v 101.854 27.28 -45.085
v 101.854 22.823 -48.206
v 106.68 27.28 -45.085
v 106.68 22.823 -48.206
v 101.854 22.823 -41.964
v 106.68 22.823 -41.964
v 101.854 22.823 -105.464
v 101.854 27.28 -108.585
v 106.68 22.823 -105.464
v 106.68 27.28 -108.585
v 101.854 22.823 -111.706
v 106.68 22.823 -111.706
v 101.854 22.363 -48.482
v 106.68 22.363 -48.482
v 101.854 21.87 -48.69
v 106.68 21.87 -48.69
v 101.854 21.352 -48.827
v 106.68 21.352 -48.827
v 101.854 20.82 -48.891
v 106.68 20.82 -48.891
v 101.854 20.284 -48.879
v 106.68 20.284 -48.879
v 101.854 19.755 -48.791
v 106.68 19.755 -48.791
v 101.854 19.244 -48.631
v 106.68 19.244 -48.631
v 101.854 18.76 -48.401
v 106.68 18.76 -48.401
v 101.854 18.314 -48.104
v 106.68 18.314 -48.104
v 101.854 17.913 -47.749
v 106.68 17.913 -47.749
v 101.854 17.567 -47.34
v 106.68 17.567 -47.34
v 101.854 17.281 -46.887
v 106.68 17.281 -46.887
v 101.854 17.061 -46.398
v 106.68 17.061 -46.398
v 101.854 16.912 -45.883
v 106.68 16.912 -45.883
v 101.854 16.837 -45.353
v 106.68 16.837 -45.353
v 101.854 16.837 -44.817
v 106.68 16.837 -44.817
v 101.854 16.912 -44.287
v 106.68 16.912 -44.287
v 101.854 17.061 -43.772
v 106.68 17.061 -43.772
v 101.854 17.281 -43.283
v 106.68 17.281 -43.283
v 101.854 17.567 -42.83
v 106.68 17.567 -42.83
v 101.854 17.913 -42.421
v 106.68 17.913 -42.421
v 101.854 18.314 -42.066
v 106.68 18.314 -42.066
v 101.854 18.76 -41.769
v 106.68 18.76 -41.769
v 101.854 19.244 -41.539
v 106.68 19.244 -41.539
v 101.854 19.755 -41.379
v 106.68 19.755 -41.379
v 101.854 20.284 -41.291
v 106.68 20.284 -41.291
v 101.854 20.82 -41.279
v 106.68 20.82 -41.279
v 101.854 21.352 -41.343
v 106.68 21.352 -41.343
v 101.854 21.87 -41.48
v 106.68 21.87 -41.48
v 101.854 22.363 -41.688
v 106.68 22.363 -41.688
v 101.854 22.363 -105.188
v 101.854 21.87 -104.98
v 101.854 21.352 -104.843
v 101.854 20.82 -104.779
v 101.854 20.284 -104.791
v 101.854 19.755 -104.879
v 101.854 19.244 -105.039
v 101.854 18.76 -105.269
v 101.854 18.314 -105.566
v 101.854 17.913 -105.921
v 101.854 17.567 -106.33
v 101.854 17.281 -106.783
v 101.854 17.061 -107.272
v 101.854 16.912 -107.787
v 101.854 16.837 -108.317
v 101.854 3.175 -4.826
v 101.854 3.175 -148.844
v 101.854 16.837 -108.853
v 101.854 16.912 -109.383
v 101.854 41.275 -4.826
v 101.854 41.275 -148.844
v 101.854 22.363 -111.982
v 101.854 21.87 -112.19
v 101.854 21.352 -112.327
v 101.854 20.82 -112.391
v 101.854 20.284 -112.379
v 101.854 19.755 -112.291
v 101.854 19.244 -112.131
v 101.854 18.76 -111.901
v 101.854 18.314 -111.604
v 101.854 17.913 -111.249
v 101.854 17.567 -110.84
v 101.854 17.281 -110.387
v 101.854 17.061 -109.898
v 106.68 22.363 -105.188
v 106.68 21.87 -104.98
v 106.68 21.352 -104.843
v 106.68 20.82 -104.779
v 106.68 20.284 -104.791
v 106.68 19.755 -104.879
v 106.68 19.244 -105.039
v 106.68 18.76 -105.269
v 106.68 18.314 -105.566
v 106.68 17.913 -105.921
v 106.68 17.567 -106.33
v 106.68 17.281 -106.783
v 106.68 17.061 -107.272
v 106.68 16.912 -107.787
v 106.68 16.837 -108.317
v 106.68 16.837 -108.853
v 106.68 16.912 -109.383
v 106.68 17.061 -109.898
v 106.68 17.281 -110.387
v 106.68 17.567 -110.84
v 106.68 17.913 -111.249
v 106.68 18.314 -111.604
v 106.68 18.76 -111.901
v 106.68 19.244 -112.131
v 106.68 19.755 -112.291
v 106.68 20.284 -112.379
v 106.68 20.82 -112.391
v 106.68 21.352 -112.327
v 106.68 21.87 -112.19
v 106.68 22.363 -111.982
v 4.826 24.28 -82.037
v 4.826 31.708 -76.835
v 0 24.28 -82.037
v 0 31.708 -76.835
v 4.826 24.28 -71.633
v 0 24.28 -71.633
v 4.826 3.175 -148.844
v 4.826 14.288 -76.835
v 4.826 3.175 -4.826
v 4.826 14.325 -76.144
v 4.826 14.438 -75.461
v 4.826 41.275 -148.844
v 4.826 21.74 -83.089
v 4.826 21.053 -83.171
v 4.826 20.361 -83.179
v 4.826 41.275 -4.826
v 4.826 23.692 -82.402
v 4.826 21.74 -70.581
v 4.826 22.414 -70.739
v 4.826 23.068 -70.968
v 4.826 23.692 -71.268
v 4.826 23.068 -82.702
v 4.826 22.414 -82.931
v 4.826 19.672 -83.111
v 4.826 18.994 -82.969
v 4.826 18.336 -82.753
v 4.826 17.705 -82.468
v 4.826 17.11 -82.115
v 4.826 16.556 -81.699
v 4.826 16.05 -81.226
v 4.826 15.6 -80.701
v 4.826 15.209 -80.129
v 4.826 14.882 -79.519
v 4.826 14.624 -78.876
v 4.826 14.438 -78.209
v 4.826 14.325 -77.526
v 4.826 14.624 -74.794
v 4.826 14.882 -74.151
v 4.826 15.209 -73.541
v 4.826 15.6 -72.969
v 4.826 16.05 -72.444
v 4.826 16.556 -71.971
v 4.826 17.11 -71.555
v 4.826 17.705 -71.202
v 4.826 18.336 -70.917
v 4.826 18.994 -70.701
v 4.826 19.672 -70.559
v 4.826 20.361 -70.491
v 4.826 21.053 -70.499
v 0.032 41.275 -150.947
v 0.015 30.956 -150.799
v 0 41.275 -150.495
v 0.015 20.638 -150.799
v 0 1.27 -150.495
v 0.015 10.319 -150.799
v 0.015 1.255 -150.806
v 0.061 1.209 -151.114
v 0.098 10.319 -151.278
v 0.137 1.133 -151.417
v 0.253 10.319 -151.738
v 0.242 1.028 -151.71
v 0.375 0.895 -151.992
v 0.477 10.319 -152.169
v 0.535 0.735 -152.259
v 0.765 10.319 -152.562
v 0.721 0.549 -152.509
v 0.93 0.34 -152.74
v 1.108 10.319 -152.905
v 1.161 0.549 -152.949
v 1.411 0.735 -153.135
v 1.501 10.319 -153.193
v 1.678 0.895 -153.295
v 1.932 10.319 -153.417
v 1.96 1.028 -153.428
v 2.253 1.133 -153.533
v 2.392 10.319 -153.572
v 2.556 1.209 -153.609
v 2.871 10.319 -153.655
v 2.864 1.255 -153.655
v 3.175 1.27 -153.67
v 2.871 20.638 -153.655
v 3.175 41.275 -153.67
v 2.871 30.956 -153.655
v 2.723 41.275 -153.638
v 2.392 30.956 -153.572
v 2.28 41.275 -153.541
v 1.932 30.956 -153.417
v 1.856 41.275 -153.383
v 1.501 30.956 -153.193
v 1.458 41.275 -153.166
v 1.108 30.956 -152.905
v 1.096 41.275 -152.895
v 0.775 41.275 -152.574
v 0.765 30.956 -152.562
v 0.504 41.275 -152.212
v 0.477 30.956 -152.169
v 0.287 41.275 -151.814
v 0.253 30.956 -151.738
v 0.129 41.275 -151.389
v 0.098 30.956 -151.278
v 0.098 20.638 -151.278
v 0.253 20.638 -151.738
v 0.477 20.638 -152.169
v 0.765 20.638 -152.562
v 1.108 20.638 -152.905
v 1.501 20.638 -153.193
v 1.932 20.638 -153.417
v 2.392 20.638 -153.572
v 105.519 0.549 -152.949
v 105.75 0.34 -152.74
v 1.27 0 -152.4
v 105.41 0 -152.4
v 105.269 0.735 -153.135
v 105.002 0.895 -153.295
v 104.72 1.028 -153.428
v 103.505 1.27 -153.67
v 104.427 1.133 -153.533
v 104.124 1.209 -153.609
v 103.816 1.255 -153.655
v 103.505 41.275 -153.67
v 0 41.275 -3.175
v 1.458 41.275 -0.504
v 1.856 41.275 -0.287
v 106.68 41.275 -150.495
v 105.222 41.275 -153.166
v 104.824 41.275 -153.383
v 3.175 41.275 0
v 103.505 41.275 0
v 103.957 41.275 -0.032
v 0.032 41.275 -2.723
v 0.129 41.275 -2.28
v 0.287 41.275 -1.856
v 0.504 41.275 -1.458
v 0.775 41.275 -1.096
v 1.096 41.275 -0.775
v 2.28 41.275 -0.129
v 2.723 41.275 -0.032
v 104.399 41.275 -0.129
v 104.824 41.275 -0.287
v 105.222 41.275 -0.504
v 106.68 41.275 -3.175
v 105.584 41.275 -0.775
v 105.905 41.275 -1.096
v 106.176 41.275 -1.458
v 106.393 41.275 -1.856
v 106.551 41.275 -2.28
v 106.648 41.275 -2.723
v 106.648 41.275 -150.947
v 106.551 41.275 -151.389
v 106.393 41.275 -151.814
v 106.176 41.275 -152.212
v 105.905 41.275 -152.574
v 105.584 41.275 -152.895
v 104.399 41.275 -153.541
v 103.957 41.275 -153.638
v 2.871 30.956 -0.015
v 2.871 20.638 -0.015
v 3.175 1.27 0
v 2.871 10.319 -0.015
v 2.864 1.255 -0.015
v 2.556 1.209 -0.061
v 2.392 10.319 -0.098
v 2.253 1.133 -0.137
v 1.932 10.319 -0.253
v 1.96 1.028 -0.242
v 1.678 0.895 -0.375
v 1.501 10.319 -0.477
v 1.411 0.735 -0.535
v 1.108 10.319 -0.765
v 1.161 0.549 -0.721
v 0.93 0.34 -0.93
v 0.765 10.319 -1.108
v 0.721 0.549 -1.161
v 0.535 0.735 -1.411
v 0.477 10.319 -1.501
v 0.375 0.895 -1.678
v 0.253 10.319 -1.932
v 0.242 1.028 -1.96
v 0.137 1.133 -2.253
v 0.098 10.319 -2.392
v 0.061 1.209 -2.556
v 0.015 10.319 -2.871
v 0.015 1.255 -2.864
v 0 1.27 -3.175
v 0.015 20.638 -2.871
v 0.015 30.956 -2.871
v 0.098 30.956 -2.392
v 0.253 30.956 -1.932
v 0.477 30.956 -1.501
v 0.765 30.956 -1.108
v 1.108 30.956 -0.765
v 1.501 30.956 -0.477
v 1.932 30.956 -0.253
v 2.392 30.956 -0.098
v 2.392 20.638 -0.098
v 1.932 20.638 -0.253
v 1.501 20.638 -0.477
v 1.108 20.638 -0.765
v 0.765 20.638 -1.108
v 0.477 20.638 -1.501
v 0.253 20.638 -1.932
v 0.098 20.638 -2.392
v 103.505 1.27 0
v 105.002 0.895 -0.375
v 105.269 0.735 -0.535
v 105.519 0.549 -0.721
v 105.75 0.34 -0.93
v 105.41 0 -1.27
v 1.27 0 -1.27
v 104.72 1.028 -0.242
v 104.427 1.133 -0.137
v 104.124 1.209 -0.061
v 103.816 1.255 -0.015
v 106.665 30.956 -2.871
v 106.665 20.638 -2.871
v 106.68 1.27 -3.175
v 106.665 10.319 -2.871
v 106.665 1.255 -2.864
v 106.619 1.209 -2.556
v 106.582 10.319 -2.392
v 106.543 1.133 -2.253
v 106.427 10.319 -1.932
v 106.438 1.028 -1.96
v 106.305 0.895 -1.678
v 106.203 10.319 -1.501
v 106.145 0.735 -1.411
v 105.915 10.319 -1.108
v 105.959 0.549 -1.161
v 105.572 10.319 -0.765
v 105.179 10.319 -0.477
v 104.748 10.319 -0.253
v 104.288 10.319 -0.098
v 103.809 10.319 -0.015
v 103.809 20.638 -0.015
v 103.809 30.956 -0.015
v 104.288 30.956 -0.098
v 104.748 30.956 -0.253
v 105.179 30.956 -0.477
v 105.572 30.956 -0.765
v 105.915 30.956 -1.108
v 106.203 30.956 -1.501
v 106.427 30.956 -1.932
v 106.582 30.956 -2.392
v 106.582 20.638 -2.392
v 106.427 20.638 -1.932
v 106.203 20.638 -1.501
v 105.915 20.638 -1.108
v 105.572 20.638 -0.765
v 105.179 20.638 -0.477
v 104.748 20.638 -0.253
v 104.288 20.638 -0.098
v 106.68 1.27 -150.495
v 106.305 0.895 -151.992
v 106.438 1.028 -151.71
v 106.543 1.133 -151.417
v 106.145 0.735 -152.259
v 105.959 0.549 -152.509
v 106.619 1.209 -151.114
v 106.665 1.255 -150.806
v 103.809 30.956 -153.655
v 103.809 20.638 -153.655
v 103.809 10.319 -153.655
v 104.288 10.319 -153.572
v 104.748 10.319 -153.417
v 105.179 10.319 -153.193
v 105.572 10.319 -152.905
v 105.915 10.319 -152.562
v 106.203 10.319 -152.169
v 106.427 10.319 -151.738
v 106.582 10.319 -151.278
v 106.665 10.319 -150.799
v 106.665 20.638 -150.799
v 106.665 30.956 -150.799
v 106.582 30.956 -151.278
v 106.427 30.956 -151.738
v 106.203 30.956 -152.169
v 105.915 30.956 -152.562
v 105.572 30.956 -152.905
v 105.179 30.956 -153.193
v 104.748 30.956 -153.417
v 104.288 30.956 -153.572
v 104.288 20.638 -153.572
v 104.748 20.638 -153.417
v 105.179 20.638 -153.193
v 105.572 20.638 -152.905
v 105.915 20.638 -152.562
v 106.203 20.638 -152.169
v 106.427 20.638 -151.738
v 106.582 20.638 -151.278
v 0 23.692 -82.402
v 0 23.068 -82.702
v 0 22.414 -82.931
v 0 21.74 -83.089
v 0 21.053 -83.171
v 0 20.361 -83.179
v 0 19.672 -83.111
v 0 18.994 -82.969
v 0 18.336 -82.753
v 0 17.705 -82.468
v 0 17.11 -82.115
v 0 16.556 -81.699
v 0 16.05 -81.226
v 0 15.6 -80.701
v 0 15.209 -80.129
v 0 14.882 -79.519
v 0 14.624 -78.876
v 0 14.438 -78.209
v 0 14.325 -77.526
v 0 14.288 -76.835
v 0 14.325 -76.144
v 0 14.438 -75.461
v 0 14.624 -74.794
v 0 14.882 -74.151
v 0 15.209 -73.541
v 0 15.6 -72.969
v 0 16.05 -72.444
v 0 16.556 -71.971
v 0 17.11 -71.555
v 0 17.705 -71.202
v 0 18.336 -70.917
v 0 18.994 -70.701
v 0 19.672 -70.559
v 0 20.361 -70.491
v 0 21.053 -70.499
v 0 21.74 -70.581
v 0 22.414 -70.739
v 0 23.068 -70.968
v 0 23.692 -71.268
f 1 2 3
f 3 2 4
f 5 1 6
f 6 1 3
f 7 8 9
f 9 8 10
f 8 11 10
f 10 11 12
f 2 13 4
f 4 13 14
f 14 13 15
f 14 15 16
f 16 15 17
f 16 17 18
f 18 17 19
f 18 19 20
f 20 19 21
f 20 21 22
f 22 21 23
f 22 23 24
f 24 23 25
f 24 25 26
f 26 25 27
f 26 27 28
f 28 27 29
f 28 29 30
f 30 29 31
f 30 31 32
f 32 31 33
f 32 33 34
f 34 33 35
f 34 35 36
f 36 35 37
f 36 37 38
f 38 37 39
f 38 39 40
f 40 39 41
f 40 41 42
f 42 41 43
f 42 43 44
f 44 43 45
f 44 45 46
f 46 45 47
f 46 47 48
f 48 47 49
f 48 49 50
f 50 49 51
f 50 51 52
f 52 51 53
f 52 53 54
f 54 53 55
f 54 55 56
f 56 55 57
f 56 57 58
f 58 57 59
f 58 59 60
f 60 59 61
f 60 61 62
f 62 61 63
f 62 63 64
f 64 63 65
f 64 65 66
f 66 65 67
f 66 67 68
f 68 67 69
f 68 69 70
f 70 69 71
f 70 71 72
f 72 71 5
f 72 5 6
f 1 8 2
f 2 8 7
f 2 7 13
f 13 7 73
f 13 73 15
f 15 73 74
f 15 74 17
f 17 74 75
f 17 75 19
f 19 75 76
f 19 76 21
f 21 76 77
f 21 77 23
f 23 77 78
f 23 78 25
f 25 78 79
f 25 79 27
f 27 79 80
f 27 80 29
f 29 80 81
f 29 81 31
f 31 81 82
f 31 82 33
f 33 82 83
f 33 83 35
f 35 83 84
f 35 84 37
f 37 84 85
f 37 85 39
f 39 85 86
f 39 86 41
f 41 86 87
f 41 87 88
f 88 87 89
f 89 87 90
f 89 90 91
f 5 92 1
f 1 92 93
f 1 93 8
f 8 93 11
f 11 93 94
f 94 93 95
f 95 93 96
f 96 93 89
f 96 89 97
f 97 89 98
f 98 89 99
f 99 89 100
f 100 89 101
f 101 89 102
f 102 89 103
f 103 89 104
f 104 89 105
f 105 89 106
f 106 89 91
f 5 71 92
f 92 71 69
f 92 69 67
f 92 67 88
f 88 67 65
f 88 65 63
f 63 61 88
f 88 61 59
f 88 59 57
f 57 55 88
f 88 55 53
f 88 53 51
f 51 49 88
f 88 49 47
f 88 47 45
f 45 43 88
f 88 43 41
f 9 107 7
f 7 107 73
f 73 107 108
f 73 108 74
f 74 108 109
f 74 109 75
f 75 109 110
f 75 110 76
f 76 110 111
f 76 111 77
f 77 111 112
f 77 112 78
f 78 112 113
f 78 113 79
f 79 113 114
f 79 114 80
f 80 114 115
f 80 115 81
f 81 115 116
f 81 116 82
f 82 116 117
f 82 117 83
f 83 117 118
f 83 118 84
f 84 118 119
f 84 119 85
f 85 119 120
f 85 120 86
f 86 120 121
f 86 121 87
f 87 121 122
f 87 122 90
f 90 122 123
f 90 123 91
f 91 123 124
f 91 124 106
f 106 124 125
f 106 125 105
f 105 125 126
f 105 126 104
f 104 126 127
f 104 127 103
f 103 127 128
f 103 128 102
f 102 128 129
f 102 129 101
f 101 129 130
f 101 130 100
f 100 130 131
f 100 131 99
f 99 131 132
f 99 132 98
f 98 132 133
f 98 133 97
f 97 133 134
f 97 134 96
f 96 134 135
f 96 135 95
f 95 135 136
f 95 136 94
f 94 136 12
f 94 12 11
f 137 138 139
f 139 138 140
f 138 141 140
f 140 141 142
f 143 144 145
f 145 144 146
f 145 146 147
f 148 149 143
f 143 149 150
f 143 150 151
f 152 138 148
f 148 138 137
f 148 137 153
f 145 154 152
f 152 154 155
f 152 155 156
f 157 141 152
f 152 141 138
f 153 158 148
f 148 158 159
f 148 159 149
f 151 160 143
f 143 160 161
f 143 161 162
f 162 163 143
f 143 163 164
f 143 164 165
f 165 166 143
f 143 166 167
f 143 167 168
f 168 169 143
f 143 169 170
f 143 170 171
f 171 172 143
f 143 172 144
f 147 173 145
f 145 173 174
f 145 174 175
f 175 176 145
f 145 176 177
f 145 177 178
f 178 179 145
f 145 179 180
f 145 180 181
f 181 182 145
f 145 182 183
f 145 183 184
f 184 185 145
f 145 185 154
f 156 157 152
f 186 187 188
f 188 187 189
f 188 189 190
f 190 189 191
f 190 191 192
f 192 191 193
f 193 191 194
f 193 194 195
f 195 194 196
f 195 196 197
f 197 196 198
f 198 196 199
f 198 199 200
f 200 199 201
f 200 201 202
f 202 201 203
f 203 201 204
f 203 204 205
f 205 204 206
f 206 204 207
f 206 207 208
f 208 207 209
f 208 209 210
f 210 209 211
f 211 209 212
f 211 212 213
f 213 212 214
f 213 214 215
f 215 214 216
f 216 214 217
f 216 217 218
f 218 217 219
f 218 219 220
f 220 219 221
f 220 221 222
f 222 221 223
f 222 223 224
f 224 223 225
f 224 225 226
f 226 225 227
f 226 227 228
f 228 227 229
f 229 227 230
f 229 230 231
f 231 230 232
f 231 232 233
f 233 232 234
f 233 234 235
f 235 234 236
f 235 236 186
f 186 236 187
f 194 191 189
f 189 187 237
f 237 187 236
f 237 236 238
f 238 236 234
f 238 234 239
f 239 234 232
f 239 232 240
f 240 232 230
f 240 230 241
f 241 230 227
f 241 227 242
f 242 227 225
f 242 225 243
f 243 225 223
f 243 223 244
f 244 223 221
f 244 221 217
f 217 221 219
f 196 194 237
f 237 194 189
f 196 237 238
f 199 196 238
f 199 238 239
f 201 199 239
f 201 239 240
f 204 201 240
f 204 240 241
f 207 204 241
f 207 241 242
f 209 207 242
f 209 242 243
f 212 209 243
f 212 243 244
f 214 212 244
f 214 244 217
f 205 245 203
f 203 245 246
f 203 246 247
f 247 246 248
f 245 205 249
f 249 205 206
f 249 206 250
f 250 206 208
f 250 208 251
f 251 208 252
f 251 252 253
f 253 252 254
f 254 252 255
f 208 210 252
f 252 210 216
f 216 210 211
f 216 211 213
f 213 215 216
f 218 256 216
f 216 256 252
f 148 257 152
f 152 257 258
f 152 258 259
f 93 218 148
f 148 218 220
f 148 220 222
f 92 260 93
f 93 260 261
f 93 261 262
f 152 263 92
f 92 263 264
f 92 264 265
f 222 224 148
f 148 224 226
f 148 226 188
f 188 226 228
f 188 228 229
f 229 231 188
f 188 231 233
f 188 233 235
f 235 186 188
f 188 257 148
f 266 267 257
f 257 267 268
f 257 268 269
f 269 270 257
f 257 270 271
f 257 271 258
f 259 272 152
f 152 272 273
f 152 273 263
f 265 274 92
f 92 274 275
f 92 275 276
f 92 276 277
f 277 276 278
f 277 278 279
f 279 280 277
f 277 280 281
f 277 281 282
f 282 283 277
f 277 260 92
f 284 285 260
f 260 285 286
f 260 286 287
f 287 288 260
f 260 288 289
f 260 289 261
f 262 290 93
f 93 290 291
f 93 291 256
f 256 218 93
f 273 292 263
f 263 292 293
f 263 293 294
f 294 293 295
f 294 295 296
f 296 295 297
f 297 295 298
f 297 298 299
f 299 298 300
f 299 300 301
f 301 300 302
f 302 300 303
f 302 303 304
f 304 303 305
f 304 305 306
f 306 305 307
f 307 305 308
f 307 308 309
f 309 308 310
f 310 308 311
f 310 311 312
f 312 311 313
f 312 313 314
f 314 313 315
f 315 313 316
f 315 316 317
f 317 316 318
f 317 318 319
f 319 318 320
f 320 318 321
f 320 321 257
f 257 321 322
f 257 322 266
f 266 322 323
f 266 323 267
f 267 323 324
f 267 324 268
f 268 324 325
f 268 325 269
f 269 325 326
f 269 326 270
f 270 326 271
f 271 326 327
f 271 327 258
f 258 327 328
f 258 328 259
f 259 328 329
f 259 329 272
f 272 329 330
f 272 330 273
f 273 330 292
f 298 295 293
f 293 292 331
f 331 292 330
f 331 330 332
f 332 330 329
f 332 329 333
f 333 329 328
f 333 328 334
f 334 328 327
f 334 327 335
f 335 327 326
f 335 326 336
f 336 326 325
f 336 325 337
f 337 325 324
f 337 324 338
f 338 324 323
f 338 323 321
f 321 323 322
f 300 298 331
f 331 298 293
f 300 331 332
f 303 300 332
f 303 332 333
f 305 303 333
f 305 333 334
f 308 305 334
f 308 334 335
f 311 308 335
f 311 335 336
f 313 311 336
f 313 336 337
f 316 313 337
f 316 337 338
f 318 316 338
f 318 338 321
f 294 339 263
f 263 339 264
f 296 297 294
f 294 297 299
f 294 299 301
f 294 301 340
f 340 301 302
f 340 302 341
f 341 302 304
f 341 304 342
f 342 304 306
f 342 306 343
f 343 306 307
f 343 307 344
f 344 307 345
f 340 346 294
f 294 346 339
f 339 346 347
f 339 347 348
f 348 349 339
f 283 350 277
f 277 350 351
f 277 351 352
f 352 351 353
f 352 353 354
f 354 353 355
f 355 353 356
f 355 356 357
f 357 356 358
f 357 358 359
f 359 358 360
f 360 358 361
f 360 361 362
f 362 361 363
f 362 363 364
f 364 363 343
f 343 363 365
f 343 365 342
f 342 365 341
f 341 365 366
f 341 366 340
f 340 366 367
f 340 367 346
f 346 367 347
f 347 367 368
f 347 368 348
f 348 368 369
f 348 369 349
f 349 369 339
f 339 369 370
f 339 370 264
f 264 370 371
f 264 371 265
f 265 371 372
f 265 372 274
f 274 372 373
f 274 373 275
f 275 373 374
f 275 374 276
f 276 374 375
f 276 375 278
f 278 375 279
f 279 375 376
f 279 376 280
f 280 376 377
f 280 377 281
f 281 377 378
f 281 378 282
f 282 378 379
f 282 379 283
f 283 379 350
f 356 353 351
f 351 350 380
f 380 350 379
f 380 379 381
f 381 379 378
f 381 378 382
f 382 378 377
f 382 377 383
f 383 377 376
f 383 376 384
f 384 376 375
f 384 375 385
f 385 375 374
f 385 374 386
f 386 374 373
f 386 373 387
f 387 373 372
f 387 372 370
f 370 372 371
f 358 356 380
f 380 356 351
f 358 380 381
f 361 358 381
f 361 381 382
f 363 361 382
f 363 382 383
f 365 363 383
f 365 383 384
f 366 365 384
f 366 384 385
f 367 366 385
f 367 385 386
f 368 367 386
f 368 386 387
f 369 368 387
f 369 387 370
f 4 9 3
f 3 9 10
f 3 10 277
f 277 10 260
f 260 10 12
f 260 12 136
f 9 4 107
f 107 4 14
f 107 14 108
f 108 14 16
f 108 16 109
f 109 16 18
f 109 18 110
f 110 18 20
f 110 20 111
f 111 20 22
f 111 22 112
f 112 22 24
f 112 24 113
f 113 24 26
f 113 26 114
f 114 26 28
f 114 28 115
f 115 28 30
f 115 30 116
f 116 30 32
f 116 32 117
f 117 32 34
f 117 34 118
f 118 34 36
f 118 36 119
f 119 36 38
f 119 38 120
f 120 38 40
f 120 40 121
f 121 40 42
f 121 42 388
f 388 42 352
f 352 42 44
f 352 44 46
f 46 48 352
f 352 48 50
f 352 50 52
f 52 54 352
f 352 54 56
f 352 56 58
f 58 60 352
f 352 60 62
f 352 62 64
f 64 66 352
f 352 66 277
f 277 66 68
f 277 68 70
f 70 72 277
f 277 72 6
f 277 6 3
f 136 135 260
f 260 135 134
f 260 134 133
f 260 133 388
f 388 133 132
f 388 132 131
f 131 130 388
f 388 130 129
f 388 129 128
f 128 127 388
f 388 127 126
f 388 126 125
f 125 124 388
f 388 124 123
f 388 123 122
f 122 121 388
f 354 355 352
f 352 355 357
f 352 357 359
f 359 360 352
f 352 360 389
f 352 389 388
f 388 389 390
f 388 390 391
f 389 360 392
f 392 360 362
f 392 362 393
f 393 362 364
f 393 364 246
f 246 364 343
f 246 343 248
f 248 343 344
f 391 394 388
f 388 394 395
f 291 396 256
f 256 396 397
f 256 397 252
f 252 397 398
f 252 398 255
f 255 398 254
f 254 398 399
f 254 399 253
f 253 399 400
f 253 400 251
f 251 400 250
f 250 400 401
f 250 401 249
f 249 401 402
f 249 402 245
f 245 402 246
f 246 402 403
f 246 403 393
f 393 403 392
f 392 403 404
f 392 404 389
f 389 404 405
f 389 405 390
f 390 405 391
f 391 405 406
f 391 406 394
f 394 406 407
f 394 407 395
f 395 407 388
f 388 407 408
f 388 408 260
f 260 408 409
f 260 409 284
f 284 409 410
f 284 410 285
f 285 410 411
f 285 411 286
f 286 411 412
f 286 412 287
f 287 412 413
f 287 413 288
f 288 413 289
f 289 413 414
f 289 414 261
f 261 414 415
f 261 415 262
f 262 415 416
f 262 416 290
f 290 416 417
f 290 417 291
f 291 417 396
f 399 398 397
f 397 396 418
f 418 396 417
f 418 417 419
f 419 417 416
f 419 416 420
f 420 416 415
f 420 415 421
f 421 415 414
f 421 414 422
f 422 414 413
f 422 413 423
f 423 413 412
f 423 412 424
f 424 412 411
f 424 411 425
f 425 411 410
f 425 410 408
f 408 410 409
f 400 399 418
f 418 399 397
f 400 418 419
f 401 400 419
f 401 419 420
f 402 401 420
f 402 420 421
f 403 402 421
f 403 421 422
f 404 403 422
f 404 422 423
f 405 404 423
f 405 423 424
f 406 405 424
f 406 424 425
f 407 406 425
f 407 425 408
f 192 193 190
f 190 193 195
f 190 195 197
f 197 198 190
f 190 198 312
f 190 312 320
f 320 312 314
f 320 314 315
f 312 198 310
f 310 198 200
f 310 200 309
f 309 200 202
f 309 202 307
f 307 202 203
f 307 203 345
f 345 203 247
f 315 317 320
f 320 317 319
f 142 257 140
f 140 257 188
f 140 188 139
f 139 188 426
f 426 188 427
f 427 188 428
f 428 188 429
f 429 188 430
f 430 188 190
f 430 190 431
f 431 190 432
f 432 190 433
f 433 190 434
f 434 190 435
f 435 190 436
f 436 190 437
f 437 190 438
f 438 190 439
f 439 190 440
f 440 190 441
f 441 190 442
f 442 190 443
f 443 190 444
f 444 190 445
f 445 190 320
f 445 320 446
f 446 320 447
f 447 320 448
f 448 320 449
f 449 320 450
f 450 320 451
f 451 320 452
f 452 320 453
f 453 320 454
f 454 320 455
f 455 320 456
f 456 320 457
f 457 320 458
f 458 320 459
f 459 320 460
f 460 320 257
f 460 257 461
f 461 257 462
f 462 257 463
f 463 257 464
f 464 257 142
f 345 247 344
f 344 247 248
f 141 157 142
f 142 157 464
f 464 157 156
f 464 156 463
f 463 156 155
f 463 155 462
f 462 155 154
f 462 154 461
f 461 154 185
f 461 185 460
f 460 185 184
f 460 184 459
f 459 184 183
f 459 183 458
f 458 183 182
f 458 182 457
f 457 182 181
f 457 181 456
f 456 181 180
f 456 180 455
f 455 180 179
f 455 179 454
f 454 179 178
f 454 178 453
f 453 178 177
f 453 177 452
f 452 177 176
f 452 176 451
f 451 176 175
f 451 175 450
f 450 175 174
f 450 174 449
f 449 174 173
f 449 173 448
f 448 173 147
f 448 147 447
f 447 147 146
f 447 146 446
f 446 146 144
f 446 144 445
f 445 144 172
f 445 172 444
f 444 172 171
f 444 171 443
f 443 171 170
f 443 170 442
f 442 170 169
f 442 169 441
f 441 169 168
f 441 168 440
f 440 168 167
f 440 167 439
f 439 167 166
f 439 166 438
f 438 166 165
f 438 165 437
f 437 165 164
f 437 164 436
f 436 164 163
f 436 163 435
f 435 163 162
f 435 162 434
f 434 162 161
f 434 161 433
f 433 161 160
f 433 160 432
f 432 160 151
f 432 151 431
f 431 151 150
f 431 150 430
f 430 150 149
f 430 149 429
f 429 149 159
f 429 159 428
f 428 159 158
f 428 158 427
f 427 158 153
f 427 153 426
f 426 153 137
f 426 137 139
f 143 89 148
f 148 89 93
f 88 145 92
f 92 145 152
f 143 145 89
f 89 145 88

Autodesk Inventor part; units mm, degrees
ref_plane "YZ Plane" through (0, 0, 0) normal (1, 0, 0) x (0, 1, 0)
ref_plane "XZ Plane" through (0, 0, 0) normal (0, 1, 0) x (-1, 0, 0)
ref_plane "XY Plane" through (0, 0, 0) normal (0, 0, 1) x (1, 0, 0)
sketch "Sketch3" plane through (0, 0, 0) normal (0, 1, 0) x (-1, 0, 0)
  line L0 (0, 0) -> (-106.68, 0)
  line L1 (-106.68, 0) -> (-106.68, -153.67)
  line L2 (-106.68, -153.67) -> (0, -153.67)
  line L3 (0, -153.67) -> (0, 0)
  line L4 (-15.24, -138.43) -> (-91.44, -138.43) construction
  line L5 (-91.44, -138.43) -> (-91.44, -87.63) construction
  line L6 (-91.44, -87.63) -> (-15.24, -87.63) construction
  line L7 (-15.24, -87.63) -> (-15.24, -138.43) construction
  line L8 (-15.24, -66.04) -> (-91.44, -66.04) construction
  line L9 (-91.44, -66.04) -> (-91.44, -15.24) construction
  line L10 (-91.44, -15.24) -> (-15.24, -15.24) construction
  line L11 (-15.24, -15.24) -> (-15.24, -66.04) construction
  dimension "d0" = 76.2
  dimension "d1" = 50.8
  dimension "d2" = 15.24
  dimension "d3" = 15.24
  dimension "d4" = 15.24
  dimension "d5" = 15.24
  dimension "d6" = 21.59
extrude "Extrusion1" add sketch "Sketch3" along normal blind 3.175
sketch "Sketch4" plane through (0, 3.175, 0) normal (0, 1, 0) x (1, 0, 0)
  line L0 (0, 0) -> (106.68, 0) projected
  line L1 (106.68, 0) -> (106.68, 153.67) projected
  line L2 (106.68, 153.67) -> (0, 153.67) projected
  line L3 (0, 153.67) -> (0, 0) projected
  line L4 (4.826, 4.826) -> (101.854, 4.826)
  line L5 (101.854, 4.826) -> (101.854, 148.844)
  line L6 (101.854, 148.844) -> (4.826, 148.844)
  line L7 (4.826, 148.844) -> (4.826, 4.826)
  dimension "d9" = 4.826
extrude "Extrusion2" add sketch "Sketch4" along normal blind 38.1
sketch "Sketch5" plane through (0, 3.175, 0) normal (0, 1, 0) x (1, 0, 0)
  line L0 (18.9992, 137.8966) -> (87.6808, 137.8966) construction
  line L1 (87.6808, 137.8966) -> (87.6808, 15.7734) construction
  line L2 (87.6808, 15.7734) -> (18.9992, 15.7734) construction
  line L3 (18.9992, 15.7734) -> (18.9992, 137.8966) construction
  line L4 (18.9992, 15.7734) -> (87.6808, 15.7734) construction
  line L5 (87.6808, 15.7734) -> (87.6808, 64.135) construction
  line L6 (87.6808, 64.135) -> (18.9992, 64.135) construction
  line L7 (18.9992, 64.135) -> (18.9992, 15.7734) construction
  line L8 (87.6808, 137.8966) -> (18.9992, 137.8966) construction
  line L9 (18.9992, 137.8966) -> (18.9992, 89.535) construction
  line L10 (18.9992, 89.535) -> (87.6808, 89.535) construction
  line L11 (87.6808, 89.535) -> (87.6808, 137.8966) construction
  line L12 (4.826, 148.844) -> (4.826, 4.826) construction
  line L13 (4.826, 4.826) -> (101.854, 4.826) construction
  line L14 (101.854, 4.826) -> (101.854, 148.844) construction
  line L15 (101.854, 148.844) -> (4.826, 148.844) construction
  point P0 (0, 0)
  dimension "d12" = 68.6816
  dimension "d13" = 48.3616
  dimension "d14" = 48.3616
  dimension "d15" = 14.1732
  dimension "d16" = 10.9474
  dimension "d17" = 10.9474
  dimension "d18" = 14.1732
  dimension "d19" = 25.4
sketch "Sketch6" plane through (106.68, 0, 0) normal (1, 0, 0) x (0, 0, -1)
  line L0 (45.085, 20.6375) -> (108.585, 20.6375) construction
  line L1 (0, 41.275) -> (153.67, 41.275) projected
  line L2 (0, 0) -> (153.67, 0) projected
  line L3 (0, 0) -> (0, 41.275) projected
  line L4 (153.67, 0) -> (153.67, 41.275) projected
  dimension "d20" = 20.6375
  dimension "d21" = 20.6375
  dimension "d22" = 45.085
  dimension "d23" = 45.085
  dimension "d24" = 63.5
hole "Hole1" at (106.68, 20.6375, -45.085) at (106.68, 20.6375, -108.585) direction (-1, 0, 0) diameter 7.62 end up to surface
sketch "Sketch7" plane through (0, 0, -153.67) normal (-1, 0, 0) x (0, 0, 1)
  line L0 (0, 0) -> (153.67, 0) projected
  line L1 (0, 41.275) -> (153.67, 41.275) projected
  line L2 (153.67, 0) -> (153.67, 41.275) projected
  line L3 (0, 0) -> (0, 41.275) projected
  point P0 (76.835, 20.6375)
  dimension "d32" = 20.6375
  dimension "d33" = 20.6375
  dimension "d34" = 76.835
  dimension "d35" = 76.835
hole "Hole2" at (0, 20.6375, -76.835) direction (1, 0, 0) diameter 12.7 end up to surface
chamfer "Chamfer1" distance 1.27 angle 45 4 edges at (106.68, 0, -76.835) (53.34, 0, -153.67) (0, 0, -76.835) (53.34, 0, 0)
fillet "Fillet1" radius 3.175 4 edges at (106.68, 21.2725, -153.67) (106.68, 21.2725, 0) (0, 21.2725, 0) (0, 21.2725, -153.67)
sketch "Sketch8" plane through (0, 1.27, -150.495) normal (-1, 0, 0) x (0, 0, 1)
  circle A0 centre (73.66, 19.3675) radius 6.35 construction
  line L0 (68.4584, 23.0097) -> (73.66, 30.4384)
  line L1 (73.66, 30.4384) -> (78.8616, 23.0097)
  line L2 (73.66, 19.3675) -> (73.66, 30.4384) construction
  line L3 (68.4584, 23.0097) -> (78.8616, 23.0097) construction
  arc A1 (78.8616, 23.0097) -> (68.4584, 23.0097) centre (73.66, 19.3675) ccw
  point P0 (150.495, -1.27)
  dimension "d47" = 55
extrude "Extrusion3" cut sketch "Sketch8" against normal up to surface (4.826 mm away)
sketch "Sketch9" plane through (106.68, 1.27, -3.175) normal (1, 0, 0) x (0, 0, -1)
  circle A0 centre (41.91, 19.3675) radius 3.81 construction
  circle A1 centre (105.41, 19.3675) radius 3.81 construction
  line L0 (0, 0) -> (0, 40.005) construction
  line L1 (147.32, 0) -> (0, 0) construction
  line L2 (147.32, 40.005) -> (147.32, 0) construction
  line L3 (0, 40.005) -> (147.32, 40.005) construction
  line L4 (38.789, 21.5528) -> (41.91, 26.01)
  line L5 (41.91, 26.01) -> (45.031, 21.5528)
  line L6 (102.289, 21.5528) -> (105.41, 26.01)
  line L7 (105.41, 26.01) -> (108.531, 21.5528)
  circle A2 centre (41.91, 19.3675) radius 3.81 projected
  circle A3 centre (105.41, 19.3675) radius 3.81 projected
  line L8 (41.91, 19.3675) -> (41.91, 26.01) construction
  line L9 (105.41, 19.3675) -> (105.41, 26.01) construction
  line L10 (38.789, 21.5528) -> (45.031, 21.5528) construction
  point P0 (-3.175, -1.27)
  dimension "d50" = 55
extrude "Extrusion4" cut sketch "Sketch9" against normal up to surface (4.826 mm away) contours L4 L5 A2 | L6 L7 A3
equation "\"d3\" = d2"
equation "\"d4\" = d2"
equation "\"d5\" = d3"
equation "\"d17\" = d16"
equation "\"d18\" = d15"
equation "\"d20\" = d21"
equation "\"d23\" = d22"
equation "\"d32\" = d33"
equation "\"d34\" = d35"
properties part number "bottom"
